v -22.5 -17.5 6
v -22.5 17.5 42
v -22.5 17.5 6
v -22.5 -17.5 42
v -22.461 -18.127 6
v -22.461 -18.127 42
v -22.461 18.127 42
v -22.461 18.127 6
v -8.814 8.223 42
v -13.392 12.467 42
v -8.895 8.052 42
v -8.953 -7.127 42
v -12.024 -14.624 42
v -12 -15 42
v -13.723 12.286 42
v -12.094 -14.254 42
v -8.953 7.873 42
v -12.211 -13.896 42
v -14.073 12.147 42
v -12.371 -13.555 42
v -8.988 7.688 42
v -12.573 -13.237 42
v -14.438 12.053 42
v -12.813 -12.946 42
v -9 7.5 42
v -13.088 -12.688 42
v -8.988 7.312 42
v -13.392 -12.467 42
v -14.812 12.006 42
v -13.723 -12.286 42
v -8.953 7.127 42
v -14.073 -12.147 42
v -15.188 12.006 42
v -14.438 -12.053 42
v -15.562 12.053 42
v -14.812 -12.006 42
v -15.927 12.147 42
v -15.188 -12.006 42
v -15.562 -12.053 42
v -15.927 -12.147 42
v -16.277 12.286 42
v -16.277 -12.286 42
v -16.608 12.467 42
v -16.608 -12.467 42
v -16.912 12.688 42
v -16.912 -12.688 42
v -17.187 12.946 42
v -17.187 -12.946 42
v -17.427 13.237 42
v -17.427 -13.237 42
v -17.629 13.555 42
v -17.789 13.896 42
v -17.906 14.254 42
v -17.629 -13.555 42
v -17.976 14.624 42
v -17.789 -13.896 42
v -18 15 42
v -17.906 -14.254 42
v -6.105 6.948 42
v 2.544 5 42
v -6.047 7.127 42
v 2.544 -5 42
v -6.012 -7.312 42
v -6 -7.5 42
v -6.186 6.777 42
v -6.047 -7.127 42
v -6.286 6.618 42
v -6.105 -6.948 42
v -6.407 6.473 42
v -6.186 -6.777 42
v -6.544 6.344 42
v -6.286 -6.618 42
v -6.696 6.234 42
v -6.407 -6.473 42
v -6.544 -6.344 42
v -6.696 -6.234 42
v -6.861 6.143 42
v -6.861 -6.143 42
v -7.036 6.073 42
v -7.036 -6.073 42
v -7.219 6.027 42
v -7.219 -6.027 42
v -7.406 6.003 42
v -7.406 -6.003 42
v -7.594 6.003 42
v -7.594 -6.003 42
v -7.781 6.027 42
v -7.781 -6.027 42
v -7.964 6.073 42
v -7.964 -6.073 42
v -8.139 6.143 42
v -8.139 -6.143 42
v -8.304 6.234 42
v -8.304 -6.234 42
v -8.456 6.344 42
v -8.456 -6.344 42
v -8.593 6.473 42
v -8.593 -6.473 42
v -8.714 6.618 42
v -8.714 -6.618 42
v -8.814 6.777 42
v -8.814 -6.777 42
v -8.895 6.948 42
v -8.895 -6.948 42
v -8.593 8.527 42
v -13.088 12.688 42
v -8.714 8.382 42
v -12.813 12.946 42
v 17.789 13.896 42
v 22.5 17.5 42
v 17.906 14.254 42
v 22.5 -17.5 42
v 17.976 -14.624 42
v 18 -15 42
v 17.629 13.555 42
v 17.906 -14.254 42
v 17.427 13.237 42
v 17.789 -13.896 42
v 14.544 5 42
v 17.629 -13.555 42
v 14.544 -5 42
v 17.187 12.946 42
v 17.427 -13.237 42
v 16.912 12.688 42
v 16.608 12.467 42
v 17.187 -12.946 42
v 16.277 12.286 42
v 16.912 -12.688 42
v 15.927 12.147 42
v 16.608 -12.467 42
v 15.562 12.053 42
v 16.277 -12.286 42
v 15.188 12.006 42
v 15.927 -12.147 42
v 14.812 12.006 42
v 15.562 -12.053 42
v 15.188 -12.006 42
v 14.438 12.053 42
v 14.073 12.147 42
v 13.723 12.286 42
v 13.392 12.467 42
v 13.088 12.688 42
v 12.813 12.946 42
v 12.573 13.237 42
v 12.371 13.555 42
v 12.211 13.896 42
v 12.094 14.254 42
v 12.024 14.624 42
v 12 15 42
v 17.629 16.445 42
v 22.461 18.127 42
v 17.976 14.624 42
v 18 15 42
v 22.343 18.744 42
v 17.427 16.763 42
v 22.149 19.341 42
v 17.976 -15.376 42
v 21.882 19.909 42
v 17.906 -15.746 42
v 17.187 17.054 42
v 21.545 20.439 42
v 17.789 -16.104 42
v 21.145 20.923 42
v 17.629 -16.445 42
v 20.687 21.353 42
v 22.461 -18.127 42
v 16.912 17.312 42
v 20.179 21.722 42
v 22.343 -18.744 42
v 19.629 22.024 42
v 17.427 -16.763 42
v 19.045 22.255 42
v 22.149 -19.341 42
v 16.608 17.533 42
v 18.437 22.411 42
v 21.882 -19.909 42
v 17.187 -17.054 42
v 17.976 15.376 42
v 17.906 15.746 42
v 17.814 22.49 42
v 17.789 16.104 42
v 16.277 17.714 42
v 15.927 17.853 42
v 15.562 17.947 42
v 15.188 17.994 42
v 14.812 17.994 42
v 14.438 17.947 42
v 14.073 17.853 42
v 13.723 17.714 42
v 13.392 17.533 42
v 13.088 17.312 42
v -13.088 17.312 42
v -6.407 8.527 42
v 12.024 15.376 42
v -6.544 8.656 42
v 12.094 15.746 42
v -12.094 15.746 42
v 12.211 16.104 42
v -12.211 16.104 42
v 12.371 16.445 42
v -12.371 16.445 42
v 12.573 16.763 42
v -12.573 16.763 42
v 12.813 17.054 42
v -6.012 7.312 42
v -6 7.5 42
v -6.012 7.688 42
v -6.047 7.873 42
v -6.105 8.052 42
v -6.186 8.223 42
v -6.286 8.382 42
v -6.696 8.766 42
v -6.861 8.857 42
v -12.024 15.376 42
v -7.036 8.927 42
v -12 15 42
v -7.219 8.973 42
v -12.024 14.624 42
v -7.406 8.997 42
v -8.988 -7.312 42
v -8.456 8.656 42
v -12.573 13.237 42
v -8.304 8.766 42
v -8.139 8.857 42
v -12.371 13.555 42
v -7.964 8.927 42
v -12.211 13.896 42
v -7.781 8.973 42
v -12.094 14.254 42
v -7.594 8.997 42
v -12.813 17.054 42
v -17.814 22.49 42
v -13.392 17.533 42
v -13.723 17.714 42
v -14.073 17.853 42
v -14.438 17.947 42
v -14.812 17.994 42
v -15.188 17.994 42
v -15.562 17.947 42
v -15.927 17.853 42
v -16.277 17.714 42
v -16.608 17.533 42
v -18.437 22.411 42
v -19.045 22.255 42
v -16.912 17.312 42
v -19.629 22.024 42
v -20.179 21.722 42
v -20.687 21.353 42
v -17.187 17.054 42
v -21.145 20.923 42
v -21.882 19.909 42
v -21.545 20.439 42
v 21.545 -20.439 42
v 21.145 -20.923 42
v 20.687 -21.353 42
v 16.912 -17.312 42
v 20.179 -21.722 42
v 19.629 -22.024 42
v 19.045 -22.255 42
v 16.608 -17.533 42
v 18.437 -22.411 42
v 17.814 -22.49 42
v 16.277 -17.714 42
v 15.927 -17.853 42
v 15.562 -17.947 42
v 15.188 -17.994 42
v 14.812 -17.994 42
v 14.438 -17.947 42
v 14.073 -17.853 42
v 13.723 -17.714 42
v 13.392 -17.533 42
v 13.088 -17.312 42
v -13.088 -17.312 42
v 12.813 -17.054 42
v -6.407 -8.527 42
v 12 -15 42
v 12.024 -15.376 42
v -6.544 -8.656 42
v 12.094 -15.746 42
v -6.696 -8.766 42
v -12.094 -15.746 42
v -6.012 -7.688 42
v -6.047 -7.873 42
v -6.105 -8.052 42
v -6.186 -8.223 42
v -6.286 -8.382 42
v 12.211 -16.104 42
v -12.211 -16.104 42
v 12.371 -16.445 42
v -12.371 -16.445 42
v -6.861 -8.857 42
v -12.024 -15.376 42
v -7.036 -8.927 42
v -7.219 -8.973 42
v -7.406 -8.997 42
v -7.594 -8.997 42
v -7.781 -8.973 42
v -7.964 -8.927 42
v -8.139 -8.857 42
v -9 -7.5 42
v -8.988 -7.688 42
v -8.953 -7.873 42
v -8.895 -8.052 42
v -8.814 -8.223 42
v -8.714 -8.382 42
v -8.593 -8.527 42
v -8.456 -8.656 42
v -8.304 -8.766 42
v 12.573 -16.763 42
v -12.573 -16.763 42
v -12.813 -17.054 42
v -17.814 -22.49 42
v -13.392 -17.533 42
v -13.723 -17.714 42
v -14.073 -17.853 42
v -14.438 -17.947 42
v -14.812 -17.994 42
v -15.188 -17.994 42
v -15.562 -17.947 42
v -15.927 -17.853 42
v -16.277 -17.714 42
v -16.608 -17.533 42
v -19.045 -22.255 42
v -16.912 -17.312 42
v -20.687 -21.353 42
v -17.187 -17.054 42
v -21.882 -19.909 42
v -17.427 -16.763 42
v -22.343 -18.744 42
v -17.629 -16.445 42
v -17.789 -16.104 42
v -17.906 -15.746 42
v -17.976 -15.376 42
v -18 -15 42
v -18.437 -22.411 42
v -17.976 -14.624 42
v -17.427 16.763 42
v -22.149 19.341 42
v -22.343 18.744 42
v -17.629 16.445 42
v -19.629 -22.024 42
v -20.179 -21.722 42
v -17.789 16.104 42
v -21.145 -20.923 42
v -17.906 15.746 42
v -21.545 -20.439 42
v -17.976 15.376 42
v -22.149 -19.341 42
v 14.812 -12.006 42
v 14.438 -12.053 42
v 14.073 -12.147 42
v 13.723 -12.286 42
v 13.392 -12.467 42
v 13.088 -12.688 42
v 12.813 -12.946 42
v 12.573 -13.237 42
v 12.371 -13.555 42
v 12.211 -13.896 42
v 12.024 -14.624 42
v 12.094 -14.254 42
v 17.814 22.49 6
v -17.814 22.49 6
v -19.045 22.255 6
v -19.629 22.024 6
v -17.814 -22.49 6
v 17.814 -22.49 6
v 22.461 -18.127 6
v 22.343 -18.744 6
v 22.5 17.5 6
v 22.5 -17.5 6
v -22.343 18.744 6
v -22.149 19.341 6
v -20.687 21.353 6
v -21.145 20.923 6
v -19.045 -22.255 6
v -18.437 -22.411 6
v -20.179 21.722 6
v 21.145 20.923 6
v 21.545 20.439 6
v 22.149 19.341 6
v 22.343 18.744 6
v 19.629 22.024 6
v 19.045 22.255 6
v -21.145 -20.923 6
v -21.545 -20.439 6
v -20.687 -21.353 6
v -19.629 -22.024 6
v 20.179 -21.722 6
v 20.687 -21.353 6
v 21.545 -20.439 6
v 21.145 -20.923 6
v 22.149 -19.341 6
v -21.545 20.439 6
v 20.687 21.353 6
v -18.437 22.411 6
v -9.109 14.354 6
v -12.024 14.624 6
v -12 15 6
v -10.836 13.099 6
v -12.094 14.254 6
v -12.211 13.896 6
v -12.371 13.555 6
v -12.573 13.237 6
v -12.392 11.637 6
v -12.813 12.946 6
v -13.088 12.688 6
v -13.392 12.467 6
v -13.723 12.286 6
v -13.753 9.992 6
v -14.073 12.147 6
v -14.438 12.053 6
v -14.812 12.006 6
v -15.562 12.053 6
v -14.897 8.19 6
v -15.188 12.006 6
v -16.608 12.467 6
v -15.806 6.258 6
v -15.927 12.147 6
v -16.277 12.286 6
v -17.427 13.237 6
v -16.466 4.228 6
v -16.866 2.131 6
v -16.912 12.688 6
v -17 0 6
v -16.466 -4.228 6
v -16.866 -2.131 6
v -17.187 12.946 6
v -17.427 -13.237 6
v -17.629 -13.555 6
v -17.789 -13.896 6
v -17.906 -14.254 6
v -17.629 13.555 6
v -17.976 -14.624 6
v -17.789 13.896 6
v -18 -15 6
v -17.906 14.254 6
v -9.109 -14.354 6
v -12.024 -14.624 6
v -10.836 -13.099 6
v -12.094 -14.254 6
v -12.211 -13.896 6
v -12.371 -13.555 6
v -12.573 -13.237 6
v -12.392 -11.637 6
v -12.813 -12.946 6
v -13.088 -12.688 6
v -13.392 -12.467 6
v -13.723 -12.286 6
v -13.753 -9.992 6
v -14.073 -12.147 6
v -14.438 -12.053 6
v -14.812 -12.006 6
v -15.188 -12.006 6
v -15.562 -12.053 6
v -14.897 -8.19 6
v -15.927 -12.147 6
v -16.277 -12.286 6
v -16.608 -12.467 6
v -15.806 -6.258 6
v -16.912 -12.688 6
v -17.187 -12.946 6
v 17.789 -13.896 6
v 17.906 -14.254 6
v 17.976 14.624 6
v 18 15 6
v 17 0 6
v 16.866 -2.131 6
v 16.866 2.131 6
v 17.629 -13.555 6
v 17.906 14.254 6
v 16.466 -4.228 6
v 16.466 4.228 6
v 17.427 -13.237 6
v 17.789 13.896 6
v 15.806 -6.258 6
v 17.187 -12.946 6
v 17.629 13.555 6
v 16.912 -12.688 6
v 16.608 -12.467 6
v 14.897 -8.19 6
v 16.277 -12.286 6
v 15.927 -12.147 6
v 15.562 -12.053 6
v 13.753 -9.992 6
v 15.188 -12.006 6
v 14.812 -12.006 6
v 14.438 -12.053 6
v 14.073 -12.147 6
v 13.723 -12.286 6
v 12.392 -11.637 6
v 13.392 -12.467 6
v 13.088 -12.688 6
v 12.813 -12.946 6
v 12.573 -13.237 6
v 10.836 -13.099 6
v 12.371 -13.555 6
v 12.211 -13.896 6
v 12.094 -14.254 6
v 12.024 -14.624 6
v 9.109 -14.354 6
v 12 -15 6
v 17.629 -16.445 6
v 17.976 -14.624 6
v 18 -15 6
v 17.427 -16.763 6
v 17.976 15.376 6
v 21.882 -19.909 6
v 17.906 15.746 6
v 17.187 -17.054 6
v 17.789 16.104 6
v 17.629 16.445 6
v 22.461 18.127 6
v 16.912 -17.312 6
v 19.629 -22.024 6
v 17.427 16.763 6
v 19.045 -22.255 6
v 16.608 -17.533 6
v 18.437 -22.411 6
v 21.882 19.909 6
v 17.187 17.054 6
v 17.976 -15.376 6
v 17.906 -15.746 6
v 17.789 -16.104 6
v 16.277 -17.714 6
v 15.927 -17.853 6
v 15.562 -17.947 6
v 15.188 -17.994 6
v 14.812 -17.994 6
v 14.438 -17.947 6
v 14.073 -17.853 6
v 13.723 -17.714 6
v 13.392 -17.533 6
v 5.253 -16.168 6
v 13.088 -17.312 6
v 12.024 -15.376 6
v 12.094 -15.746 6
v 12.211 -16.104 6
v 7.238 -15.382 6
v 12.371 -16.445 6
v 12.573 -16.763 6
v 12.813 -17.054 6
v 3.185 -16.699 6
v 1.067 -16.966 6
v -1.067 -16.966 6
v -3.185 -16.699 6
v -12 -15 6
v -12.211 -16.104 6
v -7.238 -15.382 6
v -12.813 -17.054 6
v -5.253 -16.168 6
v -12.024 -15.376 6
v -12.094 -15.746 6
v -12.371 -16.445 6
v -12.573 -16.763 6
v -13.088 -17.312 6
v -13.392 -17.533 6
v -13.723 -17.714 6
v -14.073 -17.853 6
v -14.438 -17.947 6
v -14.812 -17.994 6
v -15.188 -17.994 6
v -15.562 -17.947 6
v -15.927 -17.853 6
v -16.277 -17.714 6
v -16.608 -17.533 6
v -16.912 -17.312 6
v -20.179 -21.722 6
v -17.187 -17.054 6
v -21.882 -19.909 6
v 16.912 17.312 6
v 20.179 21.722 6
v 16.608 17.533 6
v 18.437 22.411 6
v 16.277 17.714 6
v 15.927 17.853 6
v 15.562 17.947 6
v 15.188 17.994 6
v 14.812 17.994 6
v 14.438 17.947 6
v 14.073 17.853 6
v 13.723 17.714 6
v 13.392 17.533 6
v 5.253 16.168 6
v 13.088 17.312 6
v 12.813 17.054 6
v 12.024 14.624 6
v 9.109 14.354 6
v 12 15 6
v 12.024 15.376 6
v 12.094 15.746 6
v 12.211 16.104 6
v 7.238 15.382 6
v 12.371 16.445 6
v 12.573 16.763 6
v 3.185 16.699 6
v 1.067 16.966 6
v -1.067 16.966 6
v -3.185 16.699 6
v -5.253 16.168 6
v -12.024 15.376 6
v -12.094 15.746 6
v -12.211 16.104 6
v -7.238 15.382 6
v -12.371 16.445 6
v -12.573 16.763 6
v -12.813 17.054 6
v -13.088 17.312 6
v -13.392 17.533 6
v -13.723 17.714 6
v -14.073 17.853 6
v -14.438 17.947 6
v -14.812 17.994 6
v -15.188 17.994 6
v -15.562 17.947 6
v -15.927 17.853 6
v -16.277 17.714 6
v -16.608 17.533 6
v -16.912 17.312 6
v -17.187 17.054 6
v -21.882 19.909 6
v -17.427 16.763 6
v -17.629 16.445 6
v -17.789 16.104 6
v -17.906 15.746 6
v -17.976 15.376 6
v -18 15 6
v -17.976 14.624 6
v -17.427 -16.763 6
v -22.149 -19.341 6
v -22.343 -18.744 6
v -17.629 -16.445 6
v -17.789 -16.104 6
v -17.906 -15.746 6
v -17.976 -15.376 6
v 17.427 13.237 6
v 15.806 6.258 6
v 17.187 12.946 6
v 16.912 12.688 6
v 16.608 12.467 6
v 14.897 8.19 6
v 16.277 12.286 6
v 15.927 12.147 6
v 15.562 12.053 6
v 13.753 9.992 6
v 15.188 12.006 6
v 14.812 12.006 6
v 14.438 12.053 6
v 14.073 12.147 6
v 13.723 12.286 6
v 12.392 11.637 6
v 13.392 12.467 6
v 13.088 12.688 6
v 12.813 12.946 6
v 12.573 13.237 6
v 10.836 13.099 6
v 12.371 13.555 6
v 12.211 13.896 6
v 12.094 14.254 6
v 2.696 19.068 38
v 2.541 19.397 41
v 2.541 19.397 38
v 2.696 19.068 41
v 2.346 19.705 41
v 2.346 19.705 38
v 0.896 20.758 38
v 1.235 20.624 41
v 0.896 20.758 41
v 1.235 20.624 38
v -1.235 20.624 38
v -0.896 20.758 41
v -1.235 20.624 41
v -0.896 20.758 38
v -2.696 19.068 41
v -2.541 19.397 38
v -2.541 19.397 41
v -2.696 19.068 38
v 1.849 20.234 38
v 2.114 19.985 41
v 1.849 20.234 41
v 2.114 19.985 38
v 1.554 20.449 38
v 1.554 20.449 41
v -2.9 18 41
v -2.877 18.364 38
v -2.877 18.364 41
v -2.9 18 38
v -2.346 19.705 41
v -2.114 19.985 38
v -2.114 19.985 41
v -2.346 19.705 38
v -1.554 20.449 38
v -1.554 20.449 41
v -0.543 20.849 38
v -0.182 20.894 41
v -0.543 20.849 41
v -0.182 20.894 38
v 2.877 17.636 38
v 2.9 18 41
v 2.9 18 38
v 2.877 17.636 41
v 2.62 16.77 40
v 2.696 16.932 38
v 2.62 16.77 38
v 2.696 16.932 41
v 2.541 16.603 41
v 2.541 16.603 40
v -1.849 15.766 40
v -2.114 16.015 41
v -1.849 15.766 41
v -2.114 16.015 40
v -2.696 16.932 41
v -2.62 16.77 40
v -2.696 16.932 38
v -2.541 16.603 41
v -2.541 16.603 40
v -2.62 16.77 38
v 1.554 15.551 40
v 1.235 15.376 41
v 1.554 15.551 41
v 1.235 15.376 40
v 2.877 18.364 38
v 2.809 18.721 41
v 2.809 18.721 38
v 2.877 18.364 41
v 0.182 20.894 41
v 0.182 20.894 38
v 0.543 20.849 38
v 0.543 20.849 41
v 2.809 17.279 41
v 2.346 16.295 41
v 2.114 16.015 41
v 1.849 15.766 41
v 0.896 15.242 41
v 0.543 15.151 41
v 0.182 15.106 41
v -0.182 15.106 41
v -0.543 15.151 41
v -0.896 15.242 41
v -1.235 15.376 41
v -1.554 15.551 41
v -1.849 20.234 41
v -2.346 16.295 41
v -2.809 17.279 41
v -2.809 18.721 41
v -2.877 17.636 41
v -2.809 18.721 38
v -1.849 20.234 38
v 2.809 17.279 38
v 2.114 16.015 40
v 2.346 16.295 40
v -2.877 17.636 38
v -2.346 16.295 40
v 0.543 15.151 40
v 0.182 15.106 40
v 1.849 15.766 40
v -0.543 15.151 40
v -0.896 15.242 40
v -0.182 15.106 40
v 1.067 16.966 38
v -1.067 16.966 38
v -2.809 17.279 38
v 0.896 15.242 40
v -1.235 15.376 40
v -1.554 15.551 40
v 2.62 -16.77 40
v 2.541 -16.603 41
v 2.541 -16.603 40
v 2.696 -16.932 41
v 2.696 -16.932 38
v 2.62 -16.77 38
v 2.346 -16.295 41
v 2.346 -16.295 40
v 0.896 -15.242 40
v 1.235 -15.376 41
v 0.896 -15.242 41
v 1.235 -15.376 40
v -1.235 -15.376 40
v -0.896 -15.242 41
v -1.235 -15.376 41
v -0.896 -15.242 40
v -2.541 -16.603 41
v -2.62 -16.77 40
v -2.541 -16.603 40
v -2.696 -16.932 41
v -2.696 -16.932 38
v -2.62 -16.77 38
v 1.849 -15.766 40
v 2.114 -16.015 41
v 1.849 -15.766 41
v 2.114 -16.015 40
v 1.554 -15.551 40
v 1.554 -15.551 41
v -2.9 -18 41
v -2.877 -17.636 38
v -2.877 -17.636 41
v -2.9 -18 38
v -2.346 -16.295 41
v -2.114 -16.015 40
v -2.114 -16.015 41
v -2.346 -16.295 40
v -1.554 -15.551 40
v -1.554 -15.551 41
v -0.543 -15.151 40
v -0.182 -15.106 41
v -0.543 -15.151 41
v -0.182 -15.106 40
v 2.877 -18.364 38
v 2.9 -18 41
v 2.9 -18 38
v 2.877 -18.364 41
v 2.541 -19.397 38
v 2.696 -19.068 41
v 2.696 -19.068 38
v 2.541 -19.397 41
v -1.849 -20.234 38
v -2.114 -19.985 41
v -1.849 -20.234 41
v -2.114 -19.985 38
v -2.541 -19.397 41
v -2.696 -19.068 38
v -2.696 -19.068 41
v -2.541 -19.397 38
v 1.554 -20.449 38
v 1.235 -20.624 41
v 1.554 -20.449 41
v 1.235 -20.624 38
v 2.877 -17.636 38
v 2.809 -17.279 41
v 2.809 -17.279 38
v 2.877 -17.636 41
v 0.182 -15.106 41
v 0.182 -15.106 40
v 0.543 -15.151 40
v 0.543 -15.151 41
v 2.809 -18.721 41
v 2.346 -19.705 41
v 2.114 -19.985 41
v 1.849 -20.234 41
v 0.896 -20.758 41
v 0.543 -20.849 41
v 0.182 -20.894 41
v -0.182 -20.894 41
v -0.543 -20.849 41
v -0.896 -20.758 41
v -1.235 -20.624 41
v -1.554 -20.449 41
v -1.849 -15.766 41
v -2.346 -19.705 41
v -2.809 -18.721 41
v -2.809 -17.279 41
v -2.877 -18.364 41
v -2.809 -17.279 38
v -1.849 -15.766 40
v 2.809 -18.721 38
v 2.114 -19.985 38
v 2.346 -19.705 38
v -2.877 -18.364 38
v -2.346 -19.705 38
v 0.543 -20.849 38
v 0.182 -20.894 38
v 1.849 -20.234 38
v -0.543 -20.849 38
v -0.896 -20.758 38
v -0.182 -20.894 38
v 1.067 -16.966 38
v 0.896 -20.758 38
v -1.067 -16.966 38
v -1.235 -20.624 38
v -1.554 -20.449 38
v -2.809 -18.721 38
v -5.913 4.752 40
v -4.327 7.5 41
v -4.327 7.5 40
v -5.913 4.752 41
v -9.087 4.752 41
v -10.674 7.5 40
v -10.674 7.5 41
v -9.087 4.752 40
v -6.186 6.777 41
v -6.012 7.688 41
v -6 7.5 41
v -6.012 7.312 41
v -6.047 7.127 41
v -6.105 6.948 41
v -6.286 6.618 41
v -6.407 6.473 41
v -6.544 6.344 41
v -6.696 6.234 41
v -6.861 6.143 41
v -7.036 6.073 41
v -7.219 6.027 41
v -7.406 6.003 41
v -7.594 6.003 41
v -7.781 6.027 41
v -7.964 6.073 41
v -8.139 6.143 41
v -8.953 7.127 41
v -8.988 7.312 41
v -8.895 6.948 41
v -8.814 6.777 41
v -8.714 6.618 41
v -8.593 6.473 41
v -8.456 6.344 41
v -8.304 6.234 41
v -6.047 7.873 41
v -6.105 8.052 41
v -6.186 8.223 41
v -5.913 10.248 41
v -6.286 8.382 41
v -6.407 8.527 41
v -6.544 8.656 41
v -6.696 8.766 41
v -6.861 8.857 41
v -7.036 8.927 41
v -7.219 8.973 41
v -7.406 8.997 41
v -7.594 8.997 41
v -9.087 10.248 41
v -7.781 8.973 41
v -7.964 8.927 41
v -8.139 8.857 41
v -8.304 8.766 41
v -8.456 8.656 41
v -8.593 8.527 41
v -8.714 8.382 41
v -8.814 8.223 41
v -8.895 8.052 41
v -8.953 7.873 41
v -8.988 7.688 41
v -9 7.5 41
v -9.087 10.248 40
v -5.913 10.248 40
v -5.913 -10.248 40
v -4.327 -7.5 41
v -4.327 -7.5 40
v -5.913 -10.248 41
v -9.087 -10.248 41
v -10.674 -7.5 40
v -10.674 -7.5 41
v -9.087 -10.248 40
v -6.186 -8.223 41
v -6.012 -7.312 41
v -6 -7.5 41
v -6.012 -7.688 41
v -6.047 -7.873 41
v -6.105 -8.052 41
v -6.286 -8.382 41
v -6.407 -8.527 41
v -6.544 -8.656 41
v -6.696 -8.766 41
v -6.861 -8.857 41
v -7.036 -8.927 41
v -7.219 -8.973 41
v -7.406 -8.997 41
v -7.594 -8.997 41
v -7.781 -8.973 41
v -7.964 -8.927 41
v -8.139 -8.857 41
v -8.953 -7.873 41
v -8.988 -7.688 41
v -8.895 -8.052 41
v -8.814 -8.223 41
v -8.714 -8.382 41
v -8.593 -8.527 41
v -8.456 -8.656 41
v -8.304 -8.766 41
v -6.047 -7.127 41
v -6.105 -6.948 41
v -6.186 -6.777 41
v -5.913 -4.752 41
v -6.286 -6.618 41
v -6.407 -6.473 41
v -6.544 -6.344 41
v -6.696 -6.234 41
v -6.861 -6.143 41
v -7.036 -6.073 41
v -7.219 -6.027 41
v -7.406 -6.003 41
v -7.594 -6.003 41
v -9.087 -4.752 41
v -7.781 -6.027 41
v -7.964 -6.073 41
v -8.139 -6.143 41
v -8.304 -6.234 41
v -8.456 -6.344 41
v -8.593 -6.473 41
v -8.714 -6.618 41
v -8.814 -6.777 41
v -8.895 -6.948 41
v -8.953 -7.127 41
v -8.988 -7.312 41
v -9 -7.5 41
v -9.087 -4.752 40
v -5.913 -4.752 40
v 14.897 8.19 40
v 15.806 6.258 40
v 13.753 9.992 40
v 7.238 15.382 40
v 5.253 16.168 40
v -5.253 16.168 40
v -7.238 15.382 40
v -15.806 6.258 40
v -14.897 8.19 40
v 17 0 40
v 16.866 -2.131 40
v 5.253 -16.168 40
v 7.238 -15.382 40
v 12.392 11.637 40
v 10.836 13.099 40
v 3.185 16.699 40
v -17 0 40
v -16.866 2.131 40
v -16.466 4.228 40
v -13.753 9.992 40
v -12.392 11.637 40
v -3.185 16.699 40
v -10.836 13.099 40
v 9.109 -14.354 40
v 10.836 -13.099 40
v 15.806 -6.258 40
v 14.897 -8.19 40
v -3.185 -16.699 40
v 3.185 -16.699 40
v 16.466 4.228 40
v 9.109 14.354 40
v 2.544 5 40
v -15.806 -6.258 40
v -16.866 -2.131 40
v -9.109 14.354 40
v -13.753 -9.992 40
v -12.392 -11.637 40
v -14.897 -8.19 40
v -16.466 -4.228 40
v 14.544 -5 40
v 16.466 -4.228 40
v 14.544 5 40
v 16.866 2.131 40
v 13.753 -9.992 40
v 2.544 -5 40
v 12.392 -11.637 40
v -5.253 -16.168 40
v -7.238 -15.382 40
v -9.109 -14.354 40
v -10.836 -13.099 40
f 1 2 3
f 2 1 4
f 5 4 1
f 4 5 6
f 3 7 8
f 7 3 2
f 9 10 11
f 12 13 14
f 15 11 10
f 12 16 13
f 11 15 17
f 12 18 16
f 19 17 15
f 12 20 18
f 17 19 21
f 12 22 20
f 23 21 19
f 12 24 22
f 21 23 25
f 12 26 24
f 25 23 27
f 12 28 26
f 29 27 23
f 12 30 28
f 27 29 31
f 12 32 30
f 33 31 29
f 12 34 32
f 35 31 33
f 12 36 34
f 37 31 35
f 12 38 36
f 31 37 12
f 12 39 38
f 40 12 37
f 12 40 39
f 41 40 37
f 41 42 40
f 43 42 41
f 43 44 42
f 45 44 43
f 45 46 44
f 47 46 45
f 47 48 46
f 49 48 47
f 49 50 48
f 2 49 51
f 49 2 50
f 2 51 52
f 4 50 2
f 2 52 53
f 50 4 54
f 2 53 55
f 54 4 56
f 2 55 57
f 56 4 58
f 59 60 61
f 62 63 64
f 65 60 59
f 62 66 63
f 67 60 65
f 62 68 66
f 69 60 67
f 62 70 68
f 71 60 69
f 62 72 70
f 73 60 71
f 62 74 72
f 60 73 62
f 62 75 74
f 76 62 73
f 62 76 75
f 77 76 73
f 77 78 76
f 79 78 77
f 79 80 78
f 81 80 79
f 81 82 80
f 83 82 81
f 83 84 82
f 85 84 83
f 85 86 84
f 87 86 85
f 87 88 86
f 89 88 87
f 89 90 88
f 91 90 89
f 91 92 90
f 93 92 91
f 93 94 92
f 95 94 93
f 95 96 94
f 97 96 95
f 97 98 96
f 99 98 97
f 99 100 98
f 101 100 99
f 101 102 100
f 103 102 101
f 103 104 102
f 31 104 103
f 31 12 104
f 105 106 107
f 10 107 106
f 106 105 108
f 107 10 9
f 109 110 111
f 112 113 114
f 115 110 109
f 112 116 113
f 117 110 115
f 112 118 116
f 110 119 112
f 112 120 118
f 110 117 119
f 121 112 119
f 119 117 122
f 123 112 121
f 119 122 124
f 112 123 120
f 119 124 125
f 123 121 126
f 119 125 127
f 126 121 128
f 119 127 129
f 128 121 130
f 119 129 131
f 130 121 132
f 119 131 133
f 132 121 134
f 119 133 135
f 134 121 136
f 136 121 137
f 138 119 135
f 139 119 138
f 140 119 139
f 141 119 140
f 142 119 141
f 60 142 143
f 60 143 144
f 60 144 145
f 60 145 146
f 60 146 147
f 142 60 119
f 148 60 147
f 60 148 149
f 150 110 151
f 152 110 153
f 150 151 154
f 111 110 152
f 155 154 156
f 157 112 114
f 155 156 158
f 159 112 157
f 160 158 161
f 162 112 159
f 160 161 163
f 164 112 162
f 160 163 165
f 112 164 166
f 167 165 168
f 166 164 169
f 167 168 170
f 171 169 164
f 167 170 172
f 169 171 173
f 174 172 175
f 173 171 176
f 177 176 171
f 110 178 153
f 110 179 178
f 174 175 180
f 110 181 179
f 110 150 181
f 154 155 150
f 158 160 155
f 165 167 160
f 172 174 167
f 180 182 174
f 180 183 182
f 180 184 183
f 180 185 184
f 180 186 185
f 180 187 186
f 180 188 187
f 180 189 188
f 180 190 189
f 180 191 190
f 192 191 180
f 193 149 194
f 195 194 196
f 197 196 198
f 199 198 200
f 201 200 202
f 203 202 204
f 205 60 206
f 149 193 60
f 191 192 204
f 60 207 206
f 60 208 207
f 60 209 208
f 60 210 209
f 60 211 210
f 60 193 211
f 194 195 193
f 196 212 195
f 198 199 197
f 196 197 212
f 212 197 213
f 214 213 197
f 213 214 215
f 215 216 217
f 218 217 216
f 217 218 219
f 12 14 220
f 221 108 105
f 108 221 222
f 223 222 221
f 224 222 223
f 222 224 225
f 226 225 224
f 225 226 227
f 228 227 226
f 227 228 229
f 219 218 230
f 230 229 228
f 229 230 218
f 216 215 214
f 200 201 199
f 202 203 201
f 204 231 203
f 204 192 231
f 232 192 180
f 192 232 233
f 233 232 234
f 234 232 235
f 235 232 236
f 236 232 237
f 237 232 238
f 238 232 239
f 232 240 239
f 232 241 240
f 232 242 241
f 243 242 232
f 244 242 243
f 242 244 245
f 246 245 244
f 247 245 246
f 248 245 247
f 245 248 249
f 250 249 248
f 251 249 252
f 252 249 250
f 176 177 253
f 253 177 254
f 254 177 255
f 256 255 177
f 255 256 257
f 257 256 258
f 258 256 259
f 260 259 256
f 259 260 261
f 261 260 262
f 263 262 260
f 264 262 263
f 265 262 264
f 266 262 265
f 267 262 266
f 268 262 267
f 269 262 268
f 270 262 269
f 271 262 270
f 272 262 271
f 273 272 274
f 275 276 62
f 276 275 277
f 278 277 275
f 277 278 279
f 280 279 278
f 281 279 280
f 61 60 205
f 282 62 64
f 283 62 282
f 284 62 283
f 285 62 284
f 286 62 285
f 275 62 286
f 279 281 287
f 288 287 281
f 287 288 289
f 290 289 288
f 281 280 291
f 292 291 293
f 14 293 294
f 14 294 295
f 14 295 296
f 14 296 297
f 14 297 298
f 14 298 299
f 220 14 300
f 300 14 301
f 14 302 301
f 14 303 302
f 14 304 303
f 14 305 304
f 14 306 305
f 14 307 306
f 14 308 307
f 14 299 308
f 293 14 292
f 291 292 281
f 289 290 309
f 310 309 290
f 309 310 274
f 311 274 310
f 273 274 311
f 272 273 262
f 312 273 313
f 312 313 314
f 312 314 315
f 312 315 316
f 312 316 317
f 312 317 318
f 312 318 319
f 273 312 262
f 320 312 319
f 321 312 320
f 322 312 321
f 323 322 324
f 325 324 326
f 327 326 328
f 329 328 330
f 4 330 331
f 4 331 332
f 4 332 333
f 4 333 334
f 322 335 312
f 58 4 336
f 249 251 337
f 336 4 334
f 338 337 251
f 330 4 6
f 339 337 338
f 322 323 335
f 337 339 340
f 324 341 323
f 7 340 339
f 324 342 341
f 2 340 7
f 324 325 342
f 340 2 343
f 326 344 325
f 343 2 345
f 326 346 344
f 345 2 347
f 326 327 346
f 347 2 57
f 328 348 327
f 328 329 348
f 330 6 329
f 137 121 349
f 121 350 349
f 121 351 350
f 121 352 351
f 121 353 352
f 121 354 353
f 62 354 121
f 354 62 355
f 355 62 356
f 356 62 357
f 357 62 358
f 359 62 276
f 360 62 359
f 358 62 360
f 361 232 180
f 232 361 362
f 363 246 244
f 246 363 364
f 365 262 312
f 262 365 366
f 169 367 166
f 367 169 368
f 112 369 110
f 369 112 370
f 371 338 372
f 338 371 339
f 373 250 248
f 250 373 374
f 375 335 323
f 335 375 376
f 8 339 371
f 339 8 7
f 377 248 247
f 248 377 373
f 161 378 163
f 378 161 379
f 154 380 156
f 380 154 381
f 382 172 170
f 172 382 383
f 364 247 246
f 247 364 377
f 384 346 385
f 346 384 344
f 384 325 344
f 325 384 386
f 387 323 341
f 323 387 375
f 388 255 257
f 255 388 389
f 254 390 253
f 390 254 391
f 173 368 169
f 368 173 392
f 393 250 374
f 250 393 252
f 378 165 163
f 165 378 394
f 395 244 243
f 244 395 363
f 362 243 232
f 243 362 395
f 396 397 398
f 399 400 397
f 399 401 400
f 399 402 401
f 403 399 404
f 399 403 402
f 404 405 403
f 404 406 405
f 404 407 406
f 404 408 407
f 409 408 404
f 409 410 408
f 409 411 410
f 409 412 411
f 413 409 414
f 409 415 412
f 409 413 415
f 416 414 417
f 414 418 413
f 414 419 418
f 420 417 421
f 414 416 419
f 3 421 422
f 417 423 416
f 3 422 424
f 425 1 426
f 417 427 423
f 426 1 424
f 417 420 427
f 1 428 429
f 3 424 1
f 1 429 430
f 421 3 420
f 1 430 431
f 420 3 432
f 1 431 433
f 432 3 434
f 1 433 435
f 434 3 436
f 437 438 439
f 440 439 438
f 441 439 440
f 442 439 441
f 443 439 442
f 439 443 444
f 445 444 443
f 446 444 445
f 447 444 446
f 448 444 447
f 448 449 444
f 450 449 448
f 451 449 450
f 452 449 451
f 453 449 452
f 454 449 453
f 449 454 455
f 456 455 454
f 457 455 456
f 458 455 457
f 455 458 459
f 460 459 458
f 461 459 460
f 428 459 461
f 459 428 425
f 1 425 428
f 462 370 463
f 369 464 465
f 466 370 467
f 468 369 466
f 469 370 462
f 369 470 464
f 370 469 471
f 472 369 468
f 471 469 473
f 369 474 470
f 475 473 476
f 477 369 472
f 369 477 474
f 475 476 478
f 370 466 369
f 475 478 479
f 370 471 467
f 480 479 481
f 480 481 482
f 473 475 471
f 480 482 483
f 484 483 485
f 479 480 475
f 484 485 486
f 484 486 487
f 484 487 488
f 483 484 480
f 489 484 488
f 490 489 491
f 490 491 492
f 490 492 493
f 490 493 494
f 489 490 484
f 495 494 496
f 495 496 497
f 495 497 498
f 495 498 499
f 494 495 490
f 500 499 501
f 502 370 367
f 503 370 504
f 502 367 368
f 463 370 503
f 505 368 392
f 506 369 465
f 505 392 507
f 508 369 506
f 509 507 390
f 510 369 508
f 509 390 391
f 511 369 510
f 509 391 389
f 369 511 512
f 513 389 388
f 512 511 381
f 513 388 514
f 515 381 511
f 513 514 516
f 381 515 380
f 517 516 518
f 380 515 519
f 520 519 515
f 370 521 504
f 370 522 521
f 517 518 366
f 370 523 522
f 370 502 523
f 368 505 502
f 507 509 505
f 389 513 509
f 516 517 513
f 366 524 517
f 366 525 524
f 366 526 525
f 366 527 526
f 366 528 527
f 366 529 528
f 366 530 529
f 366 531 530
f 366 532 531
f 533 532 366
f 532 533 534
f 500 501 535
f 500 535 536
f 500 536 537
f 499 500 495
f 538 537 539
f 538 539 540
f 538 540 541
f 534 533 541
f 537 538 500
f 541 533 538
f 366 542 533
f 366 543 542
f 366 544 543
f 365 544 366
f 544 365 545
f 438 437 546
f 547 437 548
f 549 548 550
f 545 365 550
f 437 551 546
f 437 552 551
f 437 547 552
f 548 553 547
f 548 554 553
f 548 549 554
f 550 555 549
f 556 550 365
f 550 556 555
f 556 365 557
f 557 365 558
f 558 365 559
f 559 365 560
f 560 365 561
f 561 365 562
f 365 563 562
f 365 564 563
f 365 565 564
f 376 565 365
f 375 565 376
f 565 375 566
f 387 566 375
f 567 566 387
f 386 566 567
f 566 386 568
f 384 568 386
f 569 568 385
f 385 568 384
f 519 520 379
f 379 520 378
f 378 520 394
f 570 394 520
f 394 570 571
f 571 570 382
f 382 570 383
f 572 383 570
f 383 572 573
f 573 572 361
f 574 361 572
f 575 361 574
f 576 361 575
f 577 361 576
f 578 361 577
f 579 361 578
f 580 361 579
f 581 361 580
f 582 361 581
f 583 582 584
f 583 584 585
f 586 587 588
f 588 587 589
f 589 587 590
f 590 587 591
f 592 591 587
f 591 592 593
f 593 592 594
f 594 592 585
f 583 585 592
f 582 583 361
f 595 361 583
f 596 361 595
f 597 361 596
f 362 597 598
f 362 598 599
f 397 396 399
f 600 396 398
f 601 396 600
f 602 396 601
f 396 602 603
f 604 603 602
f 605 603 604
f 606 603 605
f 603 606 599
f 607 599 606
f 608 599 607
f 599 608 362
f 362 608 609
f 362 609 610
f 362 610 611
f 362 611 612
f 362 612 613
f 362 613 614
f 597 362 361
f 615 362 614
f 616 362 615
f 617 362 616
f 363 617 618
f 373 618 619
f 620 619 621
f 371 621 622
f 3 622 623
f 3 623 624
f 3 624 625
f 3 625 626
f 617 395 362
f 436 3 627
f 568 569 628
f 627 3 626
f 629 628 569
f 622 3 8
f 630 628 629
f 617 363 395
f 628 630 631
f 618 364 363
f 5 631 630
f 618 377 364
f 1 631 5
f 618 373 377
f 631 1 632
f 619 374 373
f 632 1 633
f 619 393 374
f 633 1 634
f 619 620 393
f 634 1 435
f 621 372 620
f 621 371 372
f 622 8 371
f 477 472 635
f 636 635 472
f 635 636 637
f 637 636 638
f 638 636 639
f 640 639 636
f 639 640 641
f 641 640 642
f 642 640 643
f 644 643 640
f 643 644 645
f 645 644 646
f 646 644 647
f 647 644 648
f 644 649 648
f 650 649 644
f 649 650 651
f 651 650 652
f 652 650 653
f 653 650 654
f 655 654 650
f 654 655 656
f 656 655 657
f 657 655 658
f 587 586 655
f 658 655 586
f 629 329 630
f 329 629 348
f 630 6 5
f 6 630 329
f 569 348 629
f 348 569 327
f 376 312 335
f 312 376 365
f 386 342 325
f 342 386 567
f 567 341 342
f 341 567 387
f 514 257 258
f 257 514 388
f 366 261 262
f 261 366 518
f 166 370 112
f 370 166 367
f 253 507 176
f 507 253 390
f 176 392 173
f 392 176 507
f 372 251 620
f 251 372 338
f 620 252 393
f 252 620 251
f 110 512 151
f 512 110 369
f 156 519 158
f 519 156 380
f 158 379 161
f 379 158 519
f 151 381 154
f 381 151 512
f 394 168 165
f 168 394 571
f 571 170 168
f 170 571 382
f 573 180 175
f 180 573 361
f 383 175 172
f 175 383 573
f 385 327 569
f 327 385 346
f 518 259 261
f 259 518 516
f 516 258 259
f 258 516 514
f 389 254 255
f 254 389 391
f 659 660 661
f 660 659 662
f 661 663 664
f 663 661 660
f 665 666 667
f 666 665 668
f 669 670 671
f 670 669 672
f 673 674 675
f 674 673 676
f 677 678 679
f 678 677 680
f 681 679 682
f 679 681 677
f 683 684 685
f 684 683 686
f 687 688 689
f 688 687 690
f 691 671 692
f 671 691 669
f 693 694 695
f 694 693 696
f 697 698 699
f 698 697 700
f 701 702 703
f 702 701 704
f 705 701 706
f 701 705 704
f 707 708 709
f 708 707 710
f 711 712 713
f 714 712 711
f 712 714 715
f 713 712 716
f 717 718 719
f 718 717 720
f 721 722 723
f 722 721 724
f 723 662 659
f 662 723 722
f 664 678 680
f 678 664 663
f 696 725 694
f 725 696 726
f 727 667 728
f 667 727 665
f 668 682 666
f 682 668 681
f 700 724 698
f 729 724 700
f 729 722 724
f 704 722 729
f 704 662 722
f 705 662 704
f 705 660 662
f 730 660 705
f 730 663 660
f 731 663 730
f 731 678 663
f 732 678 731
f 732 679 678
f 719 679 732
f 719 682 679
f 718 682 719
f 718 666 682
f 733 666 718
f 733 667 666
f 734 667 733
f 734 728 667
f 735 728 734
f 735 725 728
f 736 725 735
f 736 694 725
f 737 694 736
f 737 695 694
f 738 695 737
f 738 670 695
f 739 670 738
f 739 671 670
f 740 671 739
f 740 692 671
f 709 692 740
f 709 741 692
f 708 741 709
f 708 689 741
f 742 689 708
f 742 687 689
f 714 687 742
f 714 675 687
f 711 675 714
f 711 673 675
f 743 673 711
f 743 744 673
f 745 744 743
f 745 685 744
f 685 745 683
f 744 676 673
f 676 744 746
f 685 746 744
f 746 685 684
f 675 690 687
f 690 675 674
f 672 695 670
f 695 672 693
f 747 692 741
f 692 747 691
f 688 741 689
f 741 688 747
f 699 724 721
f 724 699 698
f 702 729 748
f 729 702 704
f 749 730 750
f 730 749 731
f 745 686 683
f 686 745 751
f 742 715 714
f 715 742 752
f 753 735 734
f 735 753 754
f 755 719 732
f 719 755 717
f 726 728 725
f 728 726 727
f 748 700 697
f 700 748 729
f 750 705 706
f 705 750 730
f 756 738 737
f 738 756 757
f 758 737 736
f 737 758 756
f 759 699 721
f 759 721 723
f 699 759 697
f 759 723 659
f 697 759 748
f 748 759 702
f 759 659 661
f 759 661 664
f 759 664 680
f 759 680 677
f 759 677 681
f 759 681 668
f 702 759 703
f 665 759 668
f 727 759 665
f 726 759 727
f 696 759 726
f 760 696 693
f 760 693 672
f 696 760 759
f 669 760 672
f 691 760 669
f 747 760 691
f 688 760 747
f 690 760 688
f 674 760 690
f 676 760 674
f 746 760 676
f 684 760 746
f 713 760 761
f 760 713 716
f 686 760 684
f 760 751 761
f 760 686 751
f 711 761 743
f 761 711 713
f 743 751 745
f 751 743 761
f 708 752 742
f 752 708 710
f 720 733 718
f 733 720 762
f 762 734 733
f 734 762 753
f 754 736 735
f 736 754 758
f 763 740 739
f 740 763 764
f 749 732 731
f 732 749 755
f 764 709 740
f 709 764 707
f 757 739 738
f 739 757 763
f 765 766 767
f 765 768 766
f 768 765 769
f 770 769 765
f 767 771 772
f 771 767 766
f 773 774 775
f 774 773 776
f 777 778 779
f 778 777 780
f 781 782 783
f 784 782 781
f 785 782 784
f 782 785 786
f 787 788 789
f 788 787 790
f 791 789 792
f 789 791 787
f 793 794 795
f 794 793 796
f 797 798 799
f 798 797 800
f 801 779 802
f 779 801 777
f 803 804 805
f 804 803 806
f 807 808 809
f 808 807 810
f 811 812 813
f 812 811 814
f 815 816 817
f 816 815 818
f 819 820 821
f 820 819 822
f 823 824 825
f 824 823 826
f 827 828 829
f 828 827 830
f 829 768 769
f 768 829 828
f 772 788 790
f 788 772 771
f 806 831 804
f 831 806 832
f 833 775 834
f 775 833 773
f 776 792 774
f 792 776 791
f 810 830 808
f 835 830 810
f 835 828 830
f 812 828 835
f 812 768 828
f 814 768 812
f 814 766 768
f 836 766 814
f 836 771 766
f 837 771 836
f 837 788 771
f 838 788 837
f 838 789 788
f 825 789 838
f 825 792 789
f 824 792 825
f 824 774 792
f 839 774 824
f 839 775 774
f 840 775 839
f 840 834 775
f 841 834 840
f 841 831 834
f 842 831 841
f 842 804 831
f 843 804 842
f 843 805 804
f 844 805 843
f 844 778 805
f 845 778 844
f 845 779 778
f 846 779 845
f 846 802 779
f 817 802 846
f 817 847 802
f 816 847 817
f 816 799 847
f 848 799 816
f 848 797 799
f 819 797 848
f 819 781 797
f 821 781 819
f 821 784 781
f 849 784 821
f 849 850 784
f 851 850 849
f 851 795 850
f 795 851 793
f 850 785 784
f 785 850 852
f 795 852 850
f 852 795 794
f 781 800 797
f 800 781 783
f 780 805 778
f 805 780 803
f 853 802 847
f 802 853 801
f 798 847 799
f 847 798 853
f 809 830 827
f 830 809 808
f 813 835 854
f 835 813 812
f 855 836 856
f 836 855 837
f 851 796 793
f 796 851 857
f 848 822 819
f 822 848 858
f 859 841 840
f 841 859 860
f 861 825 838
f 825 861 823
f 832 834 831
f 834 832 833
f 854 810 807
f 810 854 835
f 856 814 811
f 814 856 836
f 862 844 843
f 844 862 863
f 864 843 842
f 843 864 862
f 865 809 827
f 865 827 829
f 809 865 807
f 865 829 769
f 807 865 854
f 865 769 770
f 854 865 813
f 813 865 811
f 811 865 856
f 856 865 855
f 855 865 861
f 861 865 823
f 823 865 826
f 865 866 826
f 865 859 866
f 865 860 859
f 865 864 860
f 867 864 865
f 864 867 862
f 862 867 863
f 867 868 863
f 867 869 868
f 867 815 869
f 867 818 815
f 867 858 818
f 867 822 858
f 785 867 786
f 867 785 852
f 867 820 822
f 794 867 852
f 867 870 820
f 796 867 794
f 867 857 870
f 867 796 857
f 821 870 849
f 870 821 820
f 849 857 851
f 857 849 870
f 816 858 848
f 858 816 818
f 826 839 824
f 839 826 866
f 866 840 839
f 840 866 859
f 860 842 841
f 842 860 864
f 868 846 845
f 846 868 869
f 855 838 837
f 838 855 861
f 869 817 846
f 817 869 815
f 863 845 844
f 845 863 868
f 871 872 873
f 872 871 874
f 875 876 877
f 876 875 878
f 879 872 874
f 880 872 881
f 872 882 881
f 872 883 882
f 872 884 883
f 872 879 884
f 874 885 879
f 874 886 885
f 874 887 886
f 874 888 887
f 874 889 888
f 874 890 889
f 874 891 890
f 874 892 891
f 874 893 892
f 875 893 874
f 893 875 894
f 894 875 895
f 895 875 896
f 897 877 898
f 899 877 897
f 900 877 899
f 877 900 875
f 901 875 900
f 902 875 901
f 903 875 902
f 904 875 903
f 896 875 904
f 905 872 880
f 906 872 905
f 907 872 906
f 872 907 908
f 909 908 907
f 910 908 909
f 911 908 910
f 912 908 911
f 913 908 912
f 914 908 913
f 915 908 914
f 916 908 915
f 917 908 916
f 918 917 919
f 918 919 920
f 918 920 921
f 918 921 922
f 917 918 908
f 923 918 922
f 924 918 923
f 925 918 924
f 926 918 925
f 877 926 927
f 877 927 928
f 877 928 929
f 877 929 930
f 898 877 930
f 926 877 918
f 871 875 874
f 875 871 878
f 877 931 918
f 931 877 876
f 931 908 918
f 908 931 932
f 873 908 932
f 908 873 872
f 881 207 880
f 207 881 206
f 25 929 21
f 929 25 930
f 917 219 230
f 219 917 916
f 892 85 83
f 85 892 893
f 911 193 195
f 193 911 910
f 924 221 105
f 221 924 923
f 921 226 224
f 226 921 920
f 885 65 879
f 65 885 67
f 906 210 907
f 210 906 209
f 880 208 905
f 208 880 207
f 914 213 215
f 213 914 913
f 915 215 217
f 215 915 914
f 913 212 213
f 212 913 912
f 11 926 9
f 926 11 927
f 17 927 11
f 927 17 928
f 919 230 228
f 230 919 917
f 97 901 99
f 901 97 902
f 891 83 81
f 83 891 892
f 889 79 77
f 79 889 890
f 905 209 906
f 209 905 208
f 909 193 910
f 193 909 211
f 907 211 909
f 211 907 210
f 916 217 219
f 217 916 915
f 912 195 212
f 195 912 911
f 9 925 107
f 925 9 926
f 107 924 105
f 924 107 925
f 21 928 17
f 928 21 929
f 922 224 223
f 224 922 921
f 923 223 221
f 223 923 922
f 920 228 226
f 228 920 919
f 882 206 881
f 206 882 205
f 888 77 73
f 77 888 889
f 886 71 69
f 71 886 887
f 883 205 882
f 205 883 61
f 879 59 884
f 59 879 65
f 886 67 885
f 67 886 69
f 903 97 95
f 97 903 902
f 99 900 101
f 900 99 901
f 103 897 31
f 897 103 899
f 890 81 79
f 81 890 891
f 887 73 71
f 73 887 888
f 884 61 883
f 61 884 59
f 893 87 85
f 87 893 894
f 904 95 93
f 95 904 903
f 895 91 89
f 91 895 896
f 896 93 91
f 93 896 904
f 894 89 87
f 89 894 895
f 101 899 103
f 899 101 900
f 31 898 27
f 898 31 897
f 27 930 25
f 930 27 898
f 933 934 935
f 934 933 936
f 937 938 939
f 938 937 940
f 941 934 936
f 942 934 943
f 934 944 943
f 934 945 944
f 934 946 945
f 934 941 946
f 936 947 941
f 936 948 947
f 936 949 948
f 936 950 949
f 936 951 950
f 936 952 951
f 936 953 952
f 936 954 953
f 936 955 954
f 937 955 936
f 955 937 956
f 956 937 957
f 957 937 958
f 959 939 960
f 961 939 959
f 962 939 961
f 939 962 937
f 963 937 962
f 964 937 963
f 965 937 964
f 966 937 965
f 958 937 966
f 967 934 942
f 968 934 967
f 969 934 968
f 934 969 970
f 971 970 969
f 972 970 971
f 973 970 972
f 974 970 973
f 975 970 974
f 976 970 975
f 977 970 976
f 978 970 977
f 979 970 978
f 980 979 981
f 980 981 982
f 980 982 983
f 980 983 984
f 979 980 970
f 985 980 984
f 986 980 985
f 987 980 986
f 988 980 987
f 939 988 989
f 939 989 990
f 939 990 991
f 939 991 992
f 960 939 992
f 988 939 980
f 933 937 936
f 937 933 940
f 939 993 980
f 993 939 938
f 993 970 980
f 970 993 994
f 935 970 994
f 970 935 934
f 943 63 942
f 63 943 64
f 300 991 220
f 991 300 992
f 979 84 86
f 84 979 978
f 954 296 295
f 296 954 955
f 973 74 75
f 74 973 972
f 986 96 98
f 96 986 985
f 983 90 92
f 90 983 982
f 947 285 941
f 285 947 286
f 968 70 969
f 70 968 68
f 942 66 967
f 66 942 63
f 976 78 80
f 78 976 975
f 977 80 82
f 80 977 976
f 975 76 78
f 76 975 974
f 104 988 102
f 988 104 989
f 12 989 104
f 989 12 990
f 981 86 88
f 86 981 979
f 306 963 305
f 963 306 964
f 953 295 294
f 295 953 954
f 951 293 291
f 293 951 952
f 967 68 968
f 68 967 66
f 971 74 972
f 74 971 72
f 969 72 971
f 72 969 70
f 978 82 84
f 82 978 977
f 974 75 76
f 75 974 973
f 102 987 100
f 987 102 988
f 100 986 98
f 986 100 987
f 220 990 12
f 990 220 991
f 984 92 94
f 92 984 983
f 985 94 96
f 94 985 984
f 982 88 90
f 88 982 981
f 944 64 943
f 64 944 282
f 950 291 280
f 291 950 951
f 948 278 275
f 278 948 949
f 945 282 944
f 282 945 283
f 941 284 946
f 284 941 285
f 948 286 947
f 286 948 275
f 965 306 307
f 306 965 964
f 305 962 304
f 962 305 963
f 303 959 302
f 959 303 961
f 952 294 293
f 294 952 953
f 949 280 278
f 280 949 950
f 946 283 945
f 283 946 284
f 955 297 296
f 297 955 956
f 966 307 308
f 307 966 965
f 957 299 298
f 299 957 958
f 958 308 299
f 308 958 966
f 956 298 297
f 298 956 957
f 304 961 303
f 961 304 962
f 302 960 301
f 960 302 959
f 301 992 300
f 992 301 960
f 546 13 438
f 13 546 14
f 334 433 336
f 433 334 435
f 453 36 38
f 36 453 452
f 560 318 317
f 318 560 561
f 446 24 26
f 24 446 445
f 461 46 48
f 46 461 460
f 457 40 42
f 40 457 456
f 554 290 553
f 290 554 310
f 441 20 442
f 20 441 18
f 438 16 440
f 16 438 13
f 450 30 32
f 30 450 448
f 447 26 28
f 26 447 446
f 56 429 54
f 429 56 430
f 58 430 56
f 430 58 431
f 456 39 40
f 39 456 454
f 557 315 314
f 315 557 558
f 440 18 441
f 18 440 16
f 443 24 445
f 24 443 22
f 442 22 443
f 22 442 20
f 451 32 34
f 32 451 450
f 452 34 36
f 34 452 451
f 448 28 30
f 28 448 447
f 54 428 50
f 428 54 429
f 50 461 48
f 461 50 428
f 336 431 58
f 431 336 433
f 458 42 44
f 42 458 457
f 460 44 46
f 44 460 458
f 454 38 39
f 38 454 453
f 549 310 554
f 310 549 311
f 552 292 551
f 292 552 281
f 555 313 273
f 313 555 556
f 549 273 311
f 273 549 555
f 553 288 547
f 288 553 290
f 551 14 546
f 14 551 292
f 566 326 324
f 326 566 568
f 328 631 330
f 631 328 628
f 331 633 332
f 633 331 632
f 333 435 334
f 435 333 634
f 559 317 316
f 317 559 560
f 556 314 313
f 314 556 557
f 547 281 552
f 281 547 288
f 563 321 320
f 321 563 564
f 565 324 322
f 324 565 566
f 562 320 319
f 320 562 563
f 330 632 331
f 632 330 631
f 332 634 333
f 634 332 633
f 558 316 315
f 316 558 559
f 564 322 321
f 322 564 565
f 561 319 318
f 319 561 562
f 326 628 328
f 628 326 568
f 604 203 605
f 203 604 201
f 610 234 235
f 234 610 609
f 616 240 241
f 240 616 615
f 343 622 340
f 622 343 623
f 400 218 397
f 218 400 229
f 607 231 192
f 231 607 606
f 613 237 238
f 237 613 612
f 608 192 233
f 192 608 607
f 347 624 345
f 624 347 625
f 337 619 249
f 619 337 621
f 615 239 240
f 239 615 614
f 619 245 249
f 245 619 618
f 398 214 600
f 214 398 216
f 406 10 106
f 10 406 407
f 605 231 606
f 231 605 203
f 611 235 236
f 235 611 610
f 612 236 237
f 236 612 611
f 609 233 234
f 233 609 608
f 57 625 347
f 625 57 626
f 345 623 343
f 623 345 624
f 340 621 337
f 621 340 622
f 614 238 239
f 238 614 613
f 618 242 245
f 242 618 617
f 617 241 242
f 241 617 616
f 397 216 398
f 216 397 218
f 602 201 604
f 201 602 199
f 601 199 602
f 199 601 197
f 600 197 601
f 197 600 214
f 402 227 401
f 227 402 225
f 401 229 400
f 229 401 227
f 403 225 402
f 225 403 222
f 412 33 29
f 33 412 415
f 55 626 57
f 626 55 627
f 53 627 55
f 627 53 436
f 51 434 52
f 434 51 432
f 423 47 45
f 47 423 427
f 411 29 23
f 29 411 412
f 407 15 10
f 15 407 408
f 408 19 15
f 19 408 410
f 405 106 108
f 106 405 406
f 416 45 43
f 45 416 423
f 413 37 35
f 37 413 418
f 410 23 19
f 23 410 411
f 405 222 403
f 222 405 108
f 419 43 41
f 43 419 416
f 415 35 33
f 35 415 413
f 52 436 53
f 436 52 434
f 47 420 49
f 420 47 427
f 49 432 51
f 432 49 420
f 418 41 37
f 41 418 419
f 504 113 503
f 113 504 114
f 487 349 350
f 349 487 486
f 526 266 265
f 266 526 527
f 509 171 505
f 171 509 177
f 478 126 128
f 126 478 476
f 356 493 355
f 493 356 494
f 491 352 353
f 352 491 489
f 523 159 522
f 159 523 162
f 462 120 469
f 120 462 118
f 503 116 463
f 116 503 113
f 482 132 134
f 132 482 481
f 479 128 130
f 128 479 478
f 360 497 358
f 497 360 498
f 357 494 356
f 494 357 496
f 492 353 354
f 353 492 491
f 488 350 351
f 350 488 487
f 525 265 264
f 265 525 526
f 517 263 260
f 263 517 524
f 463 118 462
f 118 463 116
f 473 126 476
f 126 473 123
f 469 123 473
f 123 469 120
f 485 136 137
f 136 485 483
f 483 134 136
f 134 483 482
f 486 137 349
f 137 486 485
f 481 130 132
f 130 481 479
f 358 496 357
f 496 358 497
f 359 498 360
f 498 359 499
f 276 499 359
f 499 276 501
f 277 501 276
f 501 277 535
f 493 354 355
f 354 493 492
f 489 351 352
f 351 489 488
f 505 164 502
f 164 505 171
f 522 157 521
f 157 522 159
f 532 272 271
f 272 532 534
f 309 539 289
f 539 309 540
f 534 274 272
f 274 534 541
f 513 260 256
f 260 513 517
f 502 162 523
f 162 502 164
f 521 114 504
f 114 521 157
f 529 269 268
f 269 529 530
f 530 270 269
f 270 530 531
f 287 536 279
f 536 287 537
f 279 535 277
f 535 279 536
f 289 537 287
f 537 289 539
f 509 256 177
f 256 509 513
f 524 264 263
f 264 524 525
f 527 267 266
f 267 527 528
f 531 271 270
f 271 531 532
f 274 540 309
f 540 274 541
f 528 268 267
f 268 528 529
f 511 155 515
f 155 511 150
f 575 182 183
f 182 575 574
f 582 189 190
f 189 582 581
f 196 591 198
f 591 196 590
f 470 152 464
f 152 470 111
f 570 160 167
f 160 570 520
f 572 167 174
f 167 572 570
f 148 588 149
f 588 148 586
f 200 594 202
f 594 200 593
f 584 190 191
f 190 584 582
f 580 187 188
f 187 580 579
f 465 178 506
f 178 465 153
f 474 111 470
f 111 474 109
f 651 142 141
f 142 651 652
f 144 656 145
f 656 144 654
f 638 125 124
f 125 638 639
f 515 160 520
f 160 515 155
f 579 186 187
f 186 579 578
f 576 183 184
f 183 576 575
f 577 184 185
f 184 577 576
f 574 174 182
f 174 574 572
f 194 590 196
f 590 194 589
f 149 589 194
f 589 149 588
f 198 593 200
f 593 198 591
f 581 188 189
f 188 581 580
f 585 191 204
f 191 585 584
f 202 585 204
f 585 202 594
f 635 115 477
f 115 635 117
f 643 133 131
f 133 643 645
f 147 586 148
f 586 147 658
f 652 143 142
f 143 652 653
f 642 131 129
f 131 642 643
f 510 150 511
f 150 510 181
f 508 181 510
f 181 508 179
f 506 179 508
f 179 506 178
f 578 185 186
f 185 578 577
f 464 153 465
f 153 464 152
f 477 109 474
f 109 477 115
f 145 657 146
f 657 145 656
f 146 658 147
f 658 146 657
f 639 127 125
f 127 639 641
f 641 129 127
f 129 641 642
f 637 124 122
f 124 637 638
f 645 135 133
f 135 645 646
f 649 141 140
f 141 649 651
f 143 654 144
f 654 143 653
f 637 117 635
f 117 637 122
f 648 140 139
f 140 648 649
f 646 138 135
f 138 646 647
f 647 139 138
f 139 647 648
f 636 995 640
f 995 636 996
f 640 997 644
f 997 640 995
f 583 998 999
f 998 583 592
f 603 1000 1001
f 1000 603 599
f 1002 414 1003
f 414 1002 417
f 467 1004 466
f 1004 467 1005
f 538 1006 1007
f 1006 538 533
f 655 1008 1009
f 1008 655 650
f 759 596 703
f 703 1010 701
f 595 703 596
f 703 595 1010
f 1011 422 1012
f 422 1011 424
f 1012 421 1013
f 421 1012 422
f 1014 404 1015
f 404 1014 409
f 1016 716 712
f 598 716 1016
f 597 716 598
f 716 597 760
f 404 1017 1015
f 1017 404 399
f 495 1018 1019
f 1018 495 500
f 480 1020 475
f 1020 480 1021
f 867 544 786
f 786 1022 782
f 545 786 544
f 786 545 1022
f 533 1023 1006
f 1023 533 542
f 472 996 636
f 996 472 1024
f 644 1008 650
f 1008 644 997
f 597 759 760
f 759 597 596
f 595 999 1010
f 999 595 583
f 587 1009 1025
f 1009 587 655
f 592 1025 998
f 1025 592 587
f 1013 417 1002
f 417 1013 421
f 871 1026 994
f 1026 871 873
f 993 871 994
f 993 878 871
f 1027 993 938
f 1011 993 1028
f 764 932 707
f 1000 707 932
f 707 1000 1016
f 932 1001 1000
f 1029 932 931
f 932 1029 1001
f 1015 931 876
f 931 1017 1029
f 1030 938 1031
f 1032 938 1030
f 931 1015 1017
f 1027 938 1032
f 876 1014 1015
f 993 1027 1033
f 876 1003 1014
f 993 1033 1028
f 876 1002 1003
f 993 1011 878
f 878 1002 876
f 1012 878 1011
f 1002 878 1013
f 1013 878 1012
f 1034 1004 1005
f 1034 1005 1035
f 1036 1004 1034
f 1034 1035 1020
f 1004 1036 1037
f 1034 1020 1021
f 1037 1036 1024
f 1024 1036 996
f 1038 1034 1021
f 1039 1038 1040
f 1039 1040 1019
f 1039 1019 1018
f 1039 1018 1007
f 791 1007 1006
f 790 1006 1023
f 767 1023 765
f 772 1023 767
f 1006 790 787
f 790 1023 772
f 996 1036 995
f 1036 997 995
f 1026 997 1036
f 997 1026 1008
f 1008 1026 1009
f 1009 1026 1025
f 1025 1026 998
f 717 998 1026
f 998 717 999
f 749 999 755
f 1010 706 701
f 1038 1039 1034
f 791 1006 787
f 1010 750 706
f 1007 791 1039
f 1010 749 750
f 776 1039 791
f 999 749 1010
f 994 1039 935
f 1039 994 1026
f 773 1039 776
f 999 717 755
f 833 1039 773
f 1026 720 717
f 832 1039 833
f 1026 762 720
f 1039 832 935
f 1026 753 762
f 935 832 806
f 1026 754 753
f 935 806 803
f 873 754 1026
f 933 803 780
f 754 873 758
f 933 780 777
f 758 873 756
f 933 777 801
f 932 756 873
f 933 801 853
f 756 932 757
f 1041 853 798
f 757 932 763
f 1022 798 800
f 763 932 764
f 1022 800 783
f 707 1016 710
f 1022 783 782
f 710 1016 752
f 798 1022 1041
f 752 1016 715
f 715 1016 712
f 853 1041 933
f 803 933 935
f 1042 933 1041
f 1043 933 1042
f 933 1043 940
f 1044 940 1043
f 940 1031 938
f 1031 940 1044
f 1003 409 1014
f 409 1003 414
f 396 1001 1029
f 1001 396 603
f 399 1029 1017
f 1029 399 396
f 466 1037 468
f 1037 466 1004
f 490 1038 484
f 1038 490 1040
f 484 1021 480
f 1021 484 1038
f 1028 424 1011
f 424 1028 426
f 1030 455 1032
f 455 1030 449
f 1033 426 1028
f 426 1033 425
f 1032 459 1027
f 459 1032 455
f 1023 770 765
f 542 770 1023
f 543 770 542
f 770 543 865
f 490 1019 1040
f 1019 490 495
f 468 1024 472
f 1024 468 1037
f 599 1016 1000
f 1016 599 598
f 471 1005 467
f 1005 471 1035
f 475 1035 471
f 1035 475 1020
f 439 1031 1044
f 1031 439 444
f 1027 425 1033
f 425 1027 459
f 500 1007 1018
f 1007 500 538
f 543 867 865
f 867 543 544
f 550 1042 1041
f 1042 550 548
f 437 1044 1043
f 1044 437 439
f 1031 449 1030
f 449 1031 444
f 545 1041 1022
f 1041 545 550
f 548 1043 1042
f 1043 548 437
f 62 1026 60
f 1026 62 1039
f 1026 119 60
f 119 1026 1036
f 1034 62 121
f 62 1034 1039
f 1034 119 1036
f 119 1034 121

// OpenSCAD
$fn = 50;


difference() {
	union() {
		translate(v = [0, 0, 6]) {
			hull() {
				translate(v = [-17.5000000000, 17.5000000000, 0]) {
					cylinder(h = 36, r = 5);
				}
				translate(v = [17.5000000000, 17.5000000000, 0]) {
					cylinder(h = 36, r = 5);
				}
				translate(v = [-17.5000000000, -17.5000000000, 0]) {
					cylinder(h = 36, r = 5);
				}
				translate(v = [17.5000000000, -17.5000000000, 0]) {
					cylinder(h = 36, r = 5);
				}
			}
		}
		translate(v = [0, 0, 6]) {
			hull() {
				translate(v = [-17.5000000000, 17.5000000000, 0]) {
					cylinder(h = 36, r = 5);
				}
				translate(v = [17.5000000000, 17.5000000000, 0]) {
					cylinder(h = 36, r = 5);
				}
				translate(v = [-17.5000000000, -17.5000000000, 0]) {
					cylinder(h = 36, r = 5);
				}
				translate(v = [17.5000000000, -17.5000000000, 0]) {
					cylinder(h = 36, r = 5);
				}
			}
		}
	}
	union() {
		translate(v = [0, 18, 38]) {
			rotate(a = [0, 0, 0]) {
				difference() {
					union() {
						cylinder(h = 3, r = 2.9000000000);
						translate(v = [0, 0, -300.0000000000]) {
							cylinder(h = 100, r = 1.5000000000);
						}
						translate(v = [0, 0, -300.0000000000]) {
							cylinder(h = 100, r = 1.8000000000);
						}
						translate(v = [0, 0, -300.0000000000]) {
							cylinder(h = 100, r = 1.5000000000);
						}
					}
					union();
				}
			}
		}
		translate(v = [0, -18, 38]) {
			rotate(a = [0, 0, 0]) {
				difference() {
					union() {
						cylinder(h = 3, r = 2.9000000000);
						translate(v = [0, 0, -300.0000000000]) {
							cylinder(h = 100, r = 1.5000000000);
						}
						translate(v = [0, 0, -300.0000000000]) {
							cylinder(h = 100, r = 1.8000000000);
						}
						translate(v = [0, 0, -300.0000000000]) {
							cylinder(h = 100, r = 1.5000000000);
						}
					}
					union();
				}
			}
		}
		translate(v = [-7.5000000000, 7.5000000000, 41]) {
			rotate(a = [0, 0, 0]) {
				difference() {
					union() {
						translate(v = [0, 0, -2.5000000000]) {
							linear_extrude(height = 2.5000000000) {
								polygon(points = [[3.1735000000, 0.0000000000], [1.5867500000, 2.7483316189], [-1.5867500000, 2.7483316189], [-3.1735000000, 0.0000000000], [-1.5867500000, -2.7483316189], [1.5867500000, -2.7483316189]]);
							}
						}
						translate(v = [0, 0, -50.0000000000]) {
							cylinder(h = 100, r = 1.5000000000);
						}
						translate(v = [0, 0, -50.0000000000]) {
							cylinder(h = 100, r = 1.5000000000);
						}
						translate(v = [0, 0, -50.0000000000]) {
							cylinder(h = 100, r = 1.5000000000);
						}
					}
					union();
				}
			}
		}
		translate(v = [-7.5000000000, -7.5000000000, 41]) {
			rotate(a = [0, 0, 0]) {
				difference() {
					union() {
						translate(v = [0, 0, -2.5000000000]) {
							linear_extrude(height = 2.5000000000) {
								polygon(points = [[3.1735000000, 0.0000000000], [1.5867500000, 2.7483316189], [-1.5867500000, 2.7483316189], [-3.1735000000, 0.0000000000], [-1.5867500000, -2.7483316189], [1.5867500000, -2.7483316189]]);
							}
						}
						translate(v = [0, 0, -50.0000000000]) {
							cylinder(h = 100, r = 1.5000000000);
						}
						translate(v = [0, 0, -50.0000000000]) {
							cylinder(h = 100, r = 1.5000000000);
						}
						translate(v = [0, 0, -50.0000000000]) {
							cylinder(h = 100, r = 1.5000000000);
						}
					}
					union();
				}
			}
		}
		translate(v = [-15.0000000000, -15.0000000000, -50.0000000000]) {
			cylinder(h = 100, r = 3.0000000000);
		}
		translate(v = [-15.0000000000, 15.0000000000, -50.0000000000]) {
			cylinder(h = 100, r = 3.0000000000);
		}
		translate(v = [15.0000000000, -15.0000000000, -50.0000000000]) {
			cylinder(h = 100, r = 3.0000000000);
		}
		translate(v = [15.0000000000, 15.0000000000, -50.0000000000]) {
			cylinder(h = 100, r = 3.0000000000);
		}
		translate(v = [0, 0, -1.0000000000]) {
			cylinder(h = 41, r = 17.0000000000);
		}
		#translate(v = [2.5440000000, -5.0000000000, 40]) {
			cube(size = [7, 10, 10]);
		}
		#translate(v = [7.5440000000, -5.0000000000, 40]) {
			cube(size = [7, 10, 10]);
		}
	}
}
